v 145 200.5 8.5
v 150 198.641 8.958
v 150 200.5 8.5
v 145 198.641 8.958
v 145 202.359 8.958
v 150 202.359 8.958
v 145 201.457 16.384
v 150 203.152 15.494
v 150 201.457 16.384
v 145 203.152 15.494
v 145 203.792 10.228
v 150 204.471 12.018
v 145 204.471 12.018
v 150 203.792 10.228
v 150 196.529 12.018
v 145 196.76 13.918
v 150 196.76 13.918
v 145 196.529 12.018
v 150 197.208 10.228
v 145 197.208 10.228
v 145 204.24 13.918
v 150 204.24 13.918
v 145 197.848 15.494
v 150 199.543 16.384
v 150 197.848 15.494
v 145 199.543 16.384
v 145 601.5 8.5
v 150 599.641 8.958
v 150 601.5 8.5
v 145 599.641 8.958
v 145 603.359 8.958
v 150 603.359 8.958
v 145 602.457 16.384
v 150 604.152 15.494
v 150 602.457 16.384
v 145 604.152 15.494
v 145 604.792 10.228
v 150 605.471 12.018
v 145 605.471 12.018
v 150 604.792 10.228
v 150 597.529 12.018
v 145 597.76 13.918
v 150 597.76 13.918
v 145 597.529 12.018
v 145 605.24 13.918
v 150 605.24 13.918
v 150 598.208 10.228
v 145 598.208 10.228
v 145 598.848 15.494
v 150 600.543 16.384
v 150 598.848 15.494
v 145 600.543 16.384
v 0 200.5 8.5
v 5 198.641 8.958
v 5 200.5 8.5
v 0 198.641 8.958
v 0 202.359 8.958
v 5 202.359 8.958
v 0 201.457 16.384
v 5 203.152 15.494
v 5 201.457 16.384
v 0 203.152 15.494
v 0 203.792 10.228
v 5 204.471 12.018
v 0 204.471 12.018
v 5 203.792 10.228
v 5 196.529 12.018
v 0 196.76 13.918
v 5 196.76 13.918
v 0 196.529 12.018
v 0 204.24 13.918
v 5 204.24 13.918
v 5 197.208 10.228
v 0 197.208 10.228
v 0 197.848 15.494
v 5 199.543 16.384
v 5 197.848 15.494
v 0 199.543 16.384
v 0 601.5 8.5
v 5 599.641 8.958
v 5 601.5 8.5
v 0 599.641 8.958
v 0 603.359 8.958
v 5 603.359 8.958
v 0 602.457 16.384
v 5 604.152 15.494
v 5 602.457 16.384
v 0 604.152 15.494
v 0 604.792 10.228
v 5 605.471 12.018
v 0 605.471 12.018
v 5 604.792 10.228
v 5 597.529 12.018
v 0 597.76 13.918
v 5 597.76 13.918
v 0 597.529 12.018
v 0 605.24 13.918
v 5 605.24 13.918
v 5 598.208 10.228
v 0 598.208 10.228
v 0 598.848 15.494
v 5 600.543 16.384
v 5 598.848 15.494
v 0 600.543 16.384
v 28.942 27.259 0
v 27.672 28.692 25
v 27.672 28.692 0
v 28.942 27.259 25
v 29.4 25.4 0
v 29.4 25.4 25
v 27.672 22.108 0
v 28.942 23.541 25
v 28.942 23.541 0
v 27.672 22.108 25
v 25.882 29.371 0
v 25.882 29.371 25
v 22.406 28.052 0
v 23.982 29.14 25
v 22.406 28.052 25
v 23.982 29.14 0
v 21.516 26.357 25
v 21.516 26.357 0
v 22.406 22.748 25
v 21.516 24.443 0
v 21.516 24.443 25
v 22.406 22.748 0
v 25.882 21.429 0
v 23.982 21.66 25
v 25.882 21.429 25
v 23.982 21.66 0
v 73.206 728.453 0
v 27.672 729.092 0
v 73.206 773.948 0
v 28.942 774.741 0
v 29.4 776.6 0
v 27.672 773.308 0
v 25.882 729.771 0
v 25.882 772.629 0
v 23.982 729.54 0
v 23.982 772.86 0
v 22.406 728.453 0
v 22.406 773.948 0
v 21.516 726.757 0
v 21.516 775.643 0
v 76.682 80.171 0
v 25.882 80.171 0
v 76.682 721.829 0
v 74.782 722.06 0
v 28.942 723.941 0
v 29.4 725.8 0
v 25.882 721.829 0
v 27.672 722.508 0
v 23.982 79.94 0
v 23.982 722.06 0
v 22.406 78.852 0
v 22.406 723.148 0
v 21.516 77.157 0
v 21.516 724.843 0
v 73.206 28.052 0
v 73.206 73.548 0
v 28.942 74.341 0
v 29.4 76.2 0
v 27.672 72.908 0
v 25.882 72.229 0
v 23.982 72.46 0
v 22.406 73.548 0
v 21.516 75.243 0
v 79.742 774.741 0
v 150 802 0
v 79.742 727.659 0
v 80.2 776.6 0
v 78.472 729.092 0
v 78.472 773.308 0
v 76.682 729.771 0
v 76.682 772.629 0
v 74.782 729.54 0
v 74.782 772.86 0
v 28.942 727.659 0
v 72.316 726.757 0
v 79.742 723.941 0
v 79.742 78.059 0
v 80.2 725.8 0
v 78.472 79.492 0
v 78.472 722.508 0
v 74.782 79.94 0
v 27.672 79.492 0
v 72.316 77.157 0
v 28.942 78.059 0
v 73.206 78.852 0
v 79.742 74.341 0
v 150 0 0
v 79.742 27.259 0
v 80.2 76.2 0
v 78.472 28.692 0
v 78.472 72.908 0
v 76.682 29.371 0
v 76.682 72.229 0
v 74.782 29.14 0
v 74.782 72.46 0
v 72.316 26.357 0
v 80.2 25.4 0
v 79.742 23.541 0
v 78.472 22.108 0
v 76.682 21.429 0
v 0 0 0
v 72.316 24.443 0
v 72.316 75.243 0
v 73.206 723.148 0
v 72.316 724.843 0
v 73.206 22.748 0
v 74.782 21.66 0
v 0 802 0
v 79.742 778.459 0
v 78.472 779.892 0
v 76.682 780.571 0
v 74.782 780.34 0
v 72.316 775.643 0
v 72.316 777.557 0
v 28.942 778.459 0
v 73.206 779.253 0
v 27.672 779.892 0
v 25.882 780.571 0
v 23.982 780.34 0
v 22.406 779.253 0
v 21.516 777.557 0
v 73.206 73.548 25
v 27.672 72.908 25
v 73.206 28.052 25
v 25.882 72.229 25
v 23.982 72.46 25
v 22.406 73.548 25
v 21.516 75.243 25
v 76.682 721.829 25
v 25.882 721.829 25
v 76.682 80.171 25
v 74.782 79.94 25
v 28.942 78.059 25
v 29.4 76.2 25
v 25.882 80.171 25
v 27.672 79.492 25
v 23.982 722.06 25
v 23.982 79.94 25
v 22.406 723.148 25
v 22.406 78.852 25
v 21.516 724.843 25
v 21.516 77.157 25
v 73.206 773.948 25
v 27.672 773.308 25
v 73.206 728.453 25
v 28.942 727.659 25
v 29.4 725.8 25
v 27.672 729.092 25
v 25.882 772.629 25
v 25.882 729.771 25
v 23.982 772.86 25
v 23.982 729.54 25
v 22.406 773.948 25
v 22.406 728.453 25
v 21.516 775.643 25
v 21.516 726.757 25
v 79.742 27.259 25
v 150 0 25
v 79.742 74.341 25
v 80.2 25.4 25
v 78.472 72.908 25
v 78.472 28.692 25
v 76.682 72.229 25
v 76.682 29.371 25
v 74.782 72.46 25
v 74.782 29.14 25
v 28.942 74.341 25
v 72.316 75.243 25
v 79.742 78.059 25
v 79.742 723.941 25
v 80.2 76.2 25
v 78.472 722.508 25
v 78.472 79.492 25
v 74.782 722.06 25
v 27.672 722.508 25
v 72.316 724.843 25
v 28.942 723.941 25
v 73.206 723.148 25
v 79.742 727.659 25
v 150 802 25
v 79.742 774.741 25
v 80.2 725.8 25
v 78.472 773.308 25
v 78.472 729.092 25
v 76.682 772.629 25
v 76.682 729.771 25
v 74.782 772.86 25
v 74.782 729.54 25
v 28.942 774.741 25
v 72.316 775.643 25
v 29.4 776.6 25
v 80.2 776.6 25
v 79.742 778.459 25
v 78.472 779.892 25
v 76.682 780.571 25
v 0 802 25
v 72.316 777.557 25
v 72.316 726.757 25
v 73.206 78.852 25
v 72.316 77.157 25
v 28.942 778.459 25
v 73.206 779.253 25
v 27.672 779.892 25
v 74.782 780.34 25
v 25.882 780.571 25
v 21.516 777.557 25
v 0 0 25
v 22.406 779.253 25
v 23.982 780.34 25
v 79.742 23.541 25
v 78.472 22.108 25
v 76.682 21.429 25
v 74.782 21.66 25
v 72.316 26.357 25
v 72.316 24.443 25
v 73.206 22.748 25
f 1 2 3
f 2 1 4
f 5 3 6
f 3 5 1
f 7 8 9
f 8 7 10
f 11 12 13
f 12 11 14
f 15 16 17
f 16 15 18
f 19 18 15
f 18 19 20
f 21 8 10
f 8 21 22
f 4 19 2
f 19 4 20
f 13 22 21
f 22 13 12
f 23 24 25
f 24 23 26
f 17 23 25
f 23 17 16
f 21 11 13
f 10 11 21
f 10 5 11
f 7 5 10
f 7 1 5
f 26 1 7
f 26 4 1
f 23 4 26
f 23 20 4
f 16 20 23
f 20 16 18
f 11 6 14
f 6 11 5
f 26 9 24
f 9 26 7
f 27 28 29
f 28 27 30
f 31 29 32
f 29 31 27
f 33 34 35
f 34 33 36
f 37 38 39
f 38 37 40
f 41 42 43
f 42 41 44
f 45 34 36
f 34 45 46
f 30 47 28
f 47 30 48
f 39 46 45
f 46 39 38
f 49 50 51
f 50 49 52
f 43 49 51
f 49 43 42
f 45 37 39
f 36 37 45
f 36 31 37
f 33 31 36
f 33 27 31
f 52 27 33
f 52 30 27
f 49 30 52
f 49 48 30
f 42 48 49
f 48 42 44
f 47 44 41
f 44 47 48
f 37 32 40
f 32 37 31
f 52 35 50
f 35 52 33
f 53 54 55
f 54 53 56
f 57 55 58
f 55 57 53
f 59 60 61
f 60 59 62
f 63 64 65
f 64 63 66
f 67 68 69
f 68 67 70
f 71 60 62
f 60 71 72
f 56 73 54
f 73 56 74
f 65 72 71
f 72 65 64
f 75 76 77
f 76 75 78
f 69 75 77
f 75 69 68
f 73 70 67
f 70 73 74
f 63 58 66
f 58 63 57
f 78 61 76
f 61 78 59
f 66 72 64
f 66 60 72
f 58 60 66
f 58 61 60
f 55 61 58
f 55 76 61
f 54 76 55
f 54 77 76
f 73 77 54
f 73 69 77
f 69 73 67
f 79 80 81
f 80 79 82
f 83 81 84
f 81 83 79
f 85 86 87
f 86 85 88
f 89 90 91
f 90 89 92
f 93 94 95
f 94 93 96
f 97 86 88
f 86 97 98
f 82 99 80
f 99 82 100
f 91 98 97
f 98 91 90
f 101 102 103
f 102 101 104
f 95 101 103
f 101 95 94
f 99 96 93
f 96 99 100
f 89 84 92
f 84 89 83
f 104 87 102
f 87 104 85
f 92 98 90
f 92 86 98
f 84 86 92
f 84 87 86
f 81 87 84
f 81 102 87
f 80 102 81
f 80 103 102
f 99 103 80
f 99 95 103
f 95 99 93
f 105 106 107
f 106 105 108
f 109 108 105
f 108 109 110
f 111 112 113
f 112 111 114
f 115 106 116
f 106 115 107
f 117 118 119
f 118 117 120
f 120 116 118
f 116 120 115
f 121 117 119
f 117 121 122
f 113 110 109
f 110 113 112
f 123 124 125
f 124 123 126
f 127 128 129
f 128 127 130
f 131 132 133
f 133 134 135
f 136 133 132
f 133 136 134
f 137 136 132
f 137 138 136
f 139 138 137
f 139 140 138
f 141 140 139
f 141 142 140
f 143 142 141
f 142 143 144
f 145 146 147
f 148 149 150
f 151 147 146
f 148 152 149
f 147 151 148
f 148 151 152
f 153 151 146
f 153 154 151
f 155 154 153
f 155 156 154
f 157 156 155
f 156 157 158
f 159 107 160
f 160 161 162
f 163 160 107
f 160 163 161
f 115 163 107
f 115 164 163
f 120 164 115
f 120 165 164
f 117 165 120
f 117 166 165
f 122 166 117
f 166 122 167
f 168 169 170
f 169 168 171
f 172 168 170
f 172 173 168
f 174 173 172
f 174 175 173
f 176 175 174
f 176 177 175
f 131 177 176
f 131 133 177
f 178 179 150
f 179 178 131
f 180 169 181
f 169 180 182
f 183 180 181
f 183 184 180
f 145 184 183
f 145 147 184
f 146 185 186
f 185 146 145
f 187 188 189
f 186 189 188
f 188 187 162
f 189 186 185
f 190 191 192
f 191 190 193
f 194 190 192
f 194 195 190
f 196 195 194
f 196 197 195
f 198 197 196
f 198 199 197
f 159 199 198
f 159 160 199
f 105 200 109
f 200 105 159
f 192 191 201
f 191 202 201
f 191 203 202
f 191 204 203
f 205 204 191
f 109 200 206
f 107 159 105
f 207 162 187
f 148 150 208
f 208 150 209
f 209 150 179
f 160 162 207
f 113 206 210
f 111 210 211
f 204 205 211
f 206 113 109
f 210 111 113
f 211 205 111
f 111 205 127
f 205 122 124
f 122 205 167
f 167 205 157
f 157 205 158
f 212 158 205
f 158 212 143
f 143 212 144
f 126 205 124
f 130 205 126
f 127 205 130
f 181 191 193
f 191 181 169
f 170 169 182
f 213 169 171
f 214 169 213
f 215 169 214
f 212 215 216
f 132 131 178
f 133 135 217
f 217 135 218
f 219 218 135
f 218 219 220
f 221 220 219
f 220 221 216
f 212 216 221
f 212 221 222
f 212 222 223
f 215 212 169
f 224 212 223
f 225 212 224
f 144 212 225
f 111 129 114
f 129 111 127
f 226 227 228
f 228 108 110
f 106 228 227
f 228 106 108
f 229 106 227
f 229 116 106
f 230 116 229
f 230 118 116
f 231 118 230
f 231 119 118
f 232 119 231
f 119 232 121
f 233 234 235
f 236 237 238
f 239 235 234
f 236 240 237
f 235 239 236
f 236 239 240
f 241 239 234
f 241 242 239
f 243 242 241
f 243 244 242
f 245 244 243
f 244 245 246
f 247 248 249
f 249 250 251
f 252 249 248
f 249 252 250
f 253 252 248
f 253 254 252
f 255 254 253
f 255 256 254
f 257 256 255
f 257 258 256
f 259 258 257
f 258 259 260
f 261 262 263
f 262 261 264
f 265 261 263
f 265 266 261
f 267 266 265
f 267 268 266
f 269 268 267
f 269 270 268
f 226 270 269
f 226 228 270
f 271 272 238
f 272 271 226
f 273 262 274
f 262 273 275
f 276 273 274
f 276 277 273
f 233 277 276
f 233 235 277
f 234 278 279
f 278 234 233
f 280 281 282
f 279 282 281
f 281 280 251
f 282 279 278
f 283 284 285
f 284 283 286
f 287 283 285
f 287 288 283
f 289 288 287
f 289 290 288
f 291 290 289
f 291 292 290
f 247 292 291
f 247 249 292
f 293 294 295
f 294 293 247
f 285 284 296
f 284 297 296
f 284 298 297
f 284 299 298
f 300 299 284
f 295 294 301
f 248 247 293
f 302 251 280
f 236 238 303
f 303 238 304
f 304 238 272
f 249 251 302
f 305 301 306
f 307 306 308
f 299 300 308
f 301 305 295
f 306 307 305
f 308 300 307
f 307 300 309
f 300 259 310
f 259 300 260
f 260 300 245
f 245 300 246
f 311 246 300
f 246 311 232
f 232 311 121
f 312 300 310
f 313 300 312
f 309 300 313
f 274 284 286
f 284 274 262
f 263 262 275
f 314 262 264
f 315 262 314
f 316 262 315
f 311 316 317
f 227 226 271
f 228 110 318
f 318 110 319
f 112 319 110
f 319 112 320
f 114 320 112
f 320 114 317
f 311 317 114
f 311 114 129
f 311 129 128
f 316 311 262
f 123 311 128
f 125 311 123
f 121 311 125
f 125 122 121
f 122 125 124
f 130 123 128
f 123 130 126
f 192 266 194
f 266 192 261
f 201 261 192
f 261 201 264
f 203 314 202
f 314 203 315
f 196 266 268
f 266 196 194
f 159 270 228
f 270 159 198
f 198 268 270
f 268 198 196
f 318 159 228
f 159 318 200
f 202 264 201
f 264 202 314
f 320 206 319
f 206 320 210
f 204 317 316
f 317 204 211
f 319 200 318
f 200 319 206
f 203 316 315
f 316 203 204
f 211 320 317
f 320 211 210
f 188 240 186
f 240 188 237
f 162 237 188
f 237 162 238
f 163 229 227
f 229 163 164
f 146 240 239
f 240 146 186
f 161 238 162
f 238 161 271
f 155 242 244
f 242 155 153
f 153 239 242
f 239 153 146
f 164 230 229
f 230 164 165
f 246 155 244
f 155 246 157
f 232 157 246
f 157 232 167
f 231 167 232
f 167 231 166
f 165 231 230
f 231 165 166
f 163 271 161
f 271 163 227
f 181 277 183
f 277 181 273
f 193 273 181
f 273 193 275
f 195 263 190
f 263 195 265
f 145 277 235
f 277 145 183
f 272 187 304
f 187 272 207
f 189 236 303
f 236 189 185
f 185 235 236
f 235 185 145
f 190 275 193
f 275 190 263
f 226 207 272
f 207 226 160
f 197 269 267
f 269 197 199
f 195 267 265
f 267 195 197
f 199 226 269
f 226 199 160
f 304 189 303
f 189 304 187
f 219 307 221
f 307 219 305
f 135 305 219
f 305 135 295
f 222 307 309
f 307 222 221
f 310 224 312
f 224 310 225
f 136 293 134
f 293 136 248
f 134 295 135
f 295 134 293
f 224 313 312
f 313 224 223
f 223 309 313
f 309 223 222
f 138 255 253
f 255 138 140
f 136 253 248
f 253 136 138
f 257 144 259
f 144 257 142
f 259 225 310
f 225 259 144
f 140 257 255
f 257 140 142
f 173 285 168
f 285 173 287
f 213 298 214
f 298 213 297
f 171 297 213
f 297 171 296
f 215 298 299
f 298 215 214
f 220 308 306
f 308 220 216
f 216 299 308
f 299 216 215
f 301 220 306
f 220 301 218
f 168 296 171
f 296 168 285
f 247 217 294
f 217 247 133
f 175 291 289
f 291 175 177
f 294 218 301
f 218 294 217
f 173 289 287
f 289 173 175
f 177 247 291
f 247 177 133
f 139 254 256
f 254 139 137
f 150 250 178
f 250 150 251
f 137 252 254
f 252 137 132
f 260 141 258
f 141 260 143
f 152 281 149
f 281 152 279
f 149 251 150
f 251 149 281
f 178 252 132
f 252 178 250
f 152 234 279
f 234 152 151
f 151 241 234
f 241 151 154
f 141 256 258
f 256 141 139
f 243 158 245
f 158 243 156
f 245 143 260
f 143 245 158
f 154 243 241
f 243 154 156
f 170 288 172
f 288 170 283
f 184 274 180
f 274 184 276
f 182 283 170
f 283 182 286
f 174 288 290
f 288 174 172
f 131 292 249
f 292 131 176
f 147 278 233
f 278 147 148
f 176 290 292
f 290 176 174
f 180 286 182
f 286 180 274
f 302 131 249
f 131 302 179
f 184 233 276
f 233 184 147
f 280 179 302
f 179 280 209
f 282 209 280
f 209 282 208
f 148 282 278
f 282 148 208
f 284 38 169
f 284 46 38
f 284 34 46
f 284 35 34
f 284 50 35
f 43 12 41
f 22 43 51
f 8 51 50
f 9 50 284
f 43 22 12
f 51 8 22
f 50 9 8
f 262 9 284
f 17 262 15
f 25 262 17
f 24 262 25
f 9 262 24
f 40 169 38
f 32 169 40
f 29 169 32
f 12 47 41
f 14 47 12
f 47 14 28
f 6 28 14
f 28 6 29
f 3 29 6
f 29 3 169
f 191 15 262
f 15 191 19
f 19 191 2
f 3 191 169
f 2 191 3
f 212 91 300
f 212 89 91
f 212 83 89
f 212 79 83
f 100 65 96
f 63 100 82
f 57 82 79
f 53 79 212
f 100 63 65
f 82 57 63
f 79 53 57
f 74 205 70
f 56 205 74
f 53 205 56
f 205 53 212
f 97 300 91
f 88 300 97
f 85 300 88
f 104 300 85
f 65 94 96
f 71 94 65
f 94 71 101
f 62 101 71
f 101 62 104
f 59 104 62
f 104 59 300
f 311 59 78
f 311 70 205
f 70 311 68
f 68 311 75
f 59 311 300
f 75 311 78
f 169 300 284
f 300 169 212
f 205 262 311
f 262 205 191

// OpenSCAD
// file: dimensions.scad
// Shared dimensions for SV08 Max Table Components
// Include this file in all component SCAD files

// Convert inches to mm
inch = 25.4;

// Table dimensions
table_width = 802;  // mm
table_depth = 802;  // mm
table_height = 463; // mm (desk height - printer bed at ~30" from floor)

// Component dimensions
leg_size = 4 * inch;          // 4x4 inch legs (101.6mm)
rail_thickness = 30;          // mm (printable thickness)
rail_width = 80;              // mm (printable width)
top_thickness = 25;           // mm

// Connection system dimensions
bolt_hole_diameter = 8;       // M8 bolts
counterbore_diameter = 16;    // For bolt heads
counterbore_depth = 10;       // mm

// Rail heights
bottom_rail_height = 200;     // mm
mid_rail_height = 250;        // mm
top_rail_height = table_height - top_thickness - rail_width; // Calculated

// Calculated rail lengths
long_rail_length = table_width - 2 * leg_size;   // 599mm
short_rail_length = table_depth - 2 * leg_size;  // 599mm

// Table top segment dimensions
segment_width = 150;          // mm
segment_depth = table_depth;  // 802mm
final_segment_width = 52;     // mm (to complete 802mm total width)

// Alignment pin dimensions
pin_diameter = 7.8;           // mm (slightly undersized for press fit)
pin_length = 15;              // mm
pin_hole_diameter = 8;        // mm
// main file
// SV08 Max Table Top Segment Component
include <dimensions.scad>

module top_segment(seg_width, seg_depth) {
    difference() {
        cube([seg_width, seg_depth, top_thickness]);

        // Alignment pin holes (on right edge if not full width)
        if (seg_width < table_width) {
            // Right edge pins
            translate([seg_width - 5, seg_depth/4, top_thickness/2])
                rotate([0, 90, 0])
                cylinder(d=pin_hole_diameter, h=10);
            translate([seg_width - 5, 3*seg_depth/4, top_thickness/2])
                rotate([0, 90, 0])
                cylinder(d=pin_hole_diameter, h=10);
        }

        // Alignment pin sockets (on left edge if not at table edge)
        if (seg_width == segment_width) { // Standard segments get sockets on left
            translate([-5, seg_depth/4, top_thickness/2])
                rotate([0, 90, 0])
                cylinder(d=pin_hole_diameter, h=10);
            translate([-5, 3*seg_depth/4, top_thickness/2])
                rotate([0, 90, 0])
                cylinder(d=pin_hole_diameter, h=10);
        }

        // Mounting holes for legs (only in segments that align with legs)
        // Front left leg area
        if (seg_width >= leg_size) {
            translate([leg_size/4, leg_size/4, 0])
                cylinder(d=bolt_hole_diameter, h=top_thickness);
            translate([3*leg_size/4, leg_size/4, 0])
                cylinder(d=bolt_hole_diameter, h=top_thickness);
            translate([leg_size/4, 3*leg_size/4, 0])
                cylinder(d=bolt_hole_diameter, h=top_thickness);
            translate([3*leg_size/4, 3*leg_size/4, 0])
                cylinder(d=bolt_hole_diameter, h=top_thickness);
        }

        // Back left leg area (if segment covers back of table)
        if (seg_width >= leg_size && seg_depth >= table_depth - leg_size) {
            translate([leg_size/4, seg_depth - leg_size/4, 0])
                cylinder(d=bolt_hole_diameter, h=top_thickness);
            translate([3*leg_size/4, seg_depth - leg_size/4, 0])
                cylinder(d=bolt_hole_diameter, h=top_thickness);
            translate([leg_size/4, seg_depth - 3*leg_size/4, 0])
                cylinder(d=bolt_hole_diameter, h=top_thickness);
            translate([3*leg_size/4, seg_depth - 3*leg_size/4, 0])
                cylinder(d=bolt_hole_diameter, h=top_thickness);
        }
    }
}

// Generate standard segment for STL export
top_segment(segment_width, segment_depth);
